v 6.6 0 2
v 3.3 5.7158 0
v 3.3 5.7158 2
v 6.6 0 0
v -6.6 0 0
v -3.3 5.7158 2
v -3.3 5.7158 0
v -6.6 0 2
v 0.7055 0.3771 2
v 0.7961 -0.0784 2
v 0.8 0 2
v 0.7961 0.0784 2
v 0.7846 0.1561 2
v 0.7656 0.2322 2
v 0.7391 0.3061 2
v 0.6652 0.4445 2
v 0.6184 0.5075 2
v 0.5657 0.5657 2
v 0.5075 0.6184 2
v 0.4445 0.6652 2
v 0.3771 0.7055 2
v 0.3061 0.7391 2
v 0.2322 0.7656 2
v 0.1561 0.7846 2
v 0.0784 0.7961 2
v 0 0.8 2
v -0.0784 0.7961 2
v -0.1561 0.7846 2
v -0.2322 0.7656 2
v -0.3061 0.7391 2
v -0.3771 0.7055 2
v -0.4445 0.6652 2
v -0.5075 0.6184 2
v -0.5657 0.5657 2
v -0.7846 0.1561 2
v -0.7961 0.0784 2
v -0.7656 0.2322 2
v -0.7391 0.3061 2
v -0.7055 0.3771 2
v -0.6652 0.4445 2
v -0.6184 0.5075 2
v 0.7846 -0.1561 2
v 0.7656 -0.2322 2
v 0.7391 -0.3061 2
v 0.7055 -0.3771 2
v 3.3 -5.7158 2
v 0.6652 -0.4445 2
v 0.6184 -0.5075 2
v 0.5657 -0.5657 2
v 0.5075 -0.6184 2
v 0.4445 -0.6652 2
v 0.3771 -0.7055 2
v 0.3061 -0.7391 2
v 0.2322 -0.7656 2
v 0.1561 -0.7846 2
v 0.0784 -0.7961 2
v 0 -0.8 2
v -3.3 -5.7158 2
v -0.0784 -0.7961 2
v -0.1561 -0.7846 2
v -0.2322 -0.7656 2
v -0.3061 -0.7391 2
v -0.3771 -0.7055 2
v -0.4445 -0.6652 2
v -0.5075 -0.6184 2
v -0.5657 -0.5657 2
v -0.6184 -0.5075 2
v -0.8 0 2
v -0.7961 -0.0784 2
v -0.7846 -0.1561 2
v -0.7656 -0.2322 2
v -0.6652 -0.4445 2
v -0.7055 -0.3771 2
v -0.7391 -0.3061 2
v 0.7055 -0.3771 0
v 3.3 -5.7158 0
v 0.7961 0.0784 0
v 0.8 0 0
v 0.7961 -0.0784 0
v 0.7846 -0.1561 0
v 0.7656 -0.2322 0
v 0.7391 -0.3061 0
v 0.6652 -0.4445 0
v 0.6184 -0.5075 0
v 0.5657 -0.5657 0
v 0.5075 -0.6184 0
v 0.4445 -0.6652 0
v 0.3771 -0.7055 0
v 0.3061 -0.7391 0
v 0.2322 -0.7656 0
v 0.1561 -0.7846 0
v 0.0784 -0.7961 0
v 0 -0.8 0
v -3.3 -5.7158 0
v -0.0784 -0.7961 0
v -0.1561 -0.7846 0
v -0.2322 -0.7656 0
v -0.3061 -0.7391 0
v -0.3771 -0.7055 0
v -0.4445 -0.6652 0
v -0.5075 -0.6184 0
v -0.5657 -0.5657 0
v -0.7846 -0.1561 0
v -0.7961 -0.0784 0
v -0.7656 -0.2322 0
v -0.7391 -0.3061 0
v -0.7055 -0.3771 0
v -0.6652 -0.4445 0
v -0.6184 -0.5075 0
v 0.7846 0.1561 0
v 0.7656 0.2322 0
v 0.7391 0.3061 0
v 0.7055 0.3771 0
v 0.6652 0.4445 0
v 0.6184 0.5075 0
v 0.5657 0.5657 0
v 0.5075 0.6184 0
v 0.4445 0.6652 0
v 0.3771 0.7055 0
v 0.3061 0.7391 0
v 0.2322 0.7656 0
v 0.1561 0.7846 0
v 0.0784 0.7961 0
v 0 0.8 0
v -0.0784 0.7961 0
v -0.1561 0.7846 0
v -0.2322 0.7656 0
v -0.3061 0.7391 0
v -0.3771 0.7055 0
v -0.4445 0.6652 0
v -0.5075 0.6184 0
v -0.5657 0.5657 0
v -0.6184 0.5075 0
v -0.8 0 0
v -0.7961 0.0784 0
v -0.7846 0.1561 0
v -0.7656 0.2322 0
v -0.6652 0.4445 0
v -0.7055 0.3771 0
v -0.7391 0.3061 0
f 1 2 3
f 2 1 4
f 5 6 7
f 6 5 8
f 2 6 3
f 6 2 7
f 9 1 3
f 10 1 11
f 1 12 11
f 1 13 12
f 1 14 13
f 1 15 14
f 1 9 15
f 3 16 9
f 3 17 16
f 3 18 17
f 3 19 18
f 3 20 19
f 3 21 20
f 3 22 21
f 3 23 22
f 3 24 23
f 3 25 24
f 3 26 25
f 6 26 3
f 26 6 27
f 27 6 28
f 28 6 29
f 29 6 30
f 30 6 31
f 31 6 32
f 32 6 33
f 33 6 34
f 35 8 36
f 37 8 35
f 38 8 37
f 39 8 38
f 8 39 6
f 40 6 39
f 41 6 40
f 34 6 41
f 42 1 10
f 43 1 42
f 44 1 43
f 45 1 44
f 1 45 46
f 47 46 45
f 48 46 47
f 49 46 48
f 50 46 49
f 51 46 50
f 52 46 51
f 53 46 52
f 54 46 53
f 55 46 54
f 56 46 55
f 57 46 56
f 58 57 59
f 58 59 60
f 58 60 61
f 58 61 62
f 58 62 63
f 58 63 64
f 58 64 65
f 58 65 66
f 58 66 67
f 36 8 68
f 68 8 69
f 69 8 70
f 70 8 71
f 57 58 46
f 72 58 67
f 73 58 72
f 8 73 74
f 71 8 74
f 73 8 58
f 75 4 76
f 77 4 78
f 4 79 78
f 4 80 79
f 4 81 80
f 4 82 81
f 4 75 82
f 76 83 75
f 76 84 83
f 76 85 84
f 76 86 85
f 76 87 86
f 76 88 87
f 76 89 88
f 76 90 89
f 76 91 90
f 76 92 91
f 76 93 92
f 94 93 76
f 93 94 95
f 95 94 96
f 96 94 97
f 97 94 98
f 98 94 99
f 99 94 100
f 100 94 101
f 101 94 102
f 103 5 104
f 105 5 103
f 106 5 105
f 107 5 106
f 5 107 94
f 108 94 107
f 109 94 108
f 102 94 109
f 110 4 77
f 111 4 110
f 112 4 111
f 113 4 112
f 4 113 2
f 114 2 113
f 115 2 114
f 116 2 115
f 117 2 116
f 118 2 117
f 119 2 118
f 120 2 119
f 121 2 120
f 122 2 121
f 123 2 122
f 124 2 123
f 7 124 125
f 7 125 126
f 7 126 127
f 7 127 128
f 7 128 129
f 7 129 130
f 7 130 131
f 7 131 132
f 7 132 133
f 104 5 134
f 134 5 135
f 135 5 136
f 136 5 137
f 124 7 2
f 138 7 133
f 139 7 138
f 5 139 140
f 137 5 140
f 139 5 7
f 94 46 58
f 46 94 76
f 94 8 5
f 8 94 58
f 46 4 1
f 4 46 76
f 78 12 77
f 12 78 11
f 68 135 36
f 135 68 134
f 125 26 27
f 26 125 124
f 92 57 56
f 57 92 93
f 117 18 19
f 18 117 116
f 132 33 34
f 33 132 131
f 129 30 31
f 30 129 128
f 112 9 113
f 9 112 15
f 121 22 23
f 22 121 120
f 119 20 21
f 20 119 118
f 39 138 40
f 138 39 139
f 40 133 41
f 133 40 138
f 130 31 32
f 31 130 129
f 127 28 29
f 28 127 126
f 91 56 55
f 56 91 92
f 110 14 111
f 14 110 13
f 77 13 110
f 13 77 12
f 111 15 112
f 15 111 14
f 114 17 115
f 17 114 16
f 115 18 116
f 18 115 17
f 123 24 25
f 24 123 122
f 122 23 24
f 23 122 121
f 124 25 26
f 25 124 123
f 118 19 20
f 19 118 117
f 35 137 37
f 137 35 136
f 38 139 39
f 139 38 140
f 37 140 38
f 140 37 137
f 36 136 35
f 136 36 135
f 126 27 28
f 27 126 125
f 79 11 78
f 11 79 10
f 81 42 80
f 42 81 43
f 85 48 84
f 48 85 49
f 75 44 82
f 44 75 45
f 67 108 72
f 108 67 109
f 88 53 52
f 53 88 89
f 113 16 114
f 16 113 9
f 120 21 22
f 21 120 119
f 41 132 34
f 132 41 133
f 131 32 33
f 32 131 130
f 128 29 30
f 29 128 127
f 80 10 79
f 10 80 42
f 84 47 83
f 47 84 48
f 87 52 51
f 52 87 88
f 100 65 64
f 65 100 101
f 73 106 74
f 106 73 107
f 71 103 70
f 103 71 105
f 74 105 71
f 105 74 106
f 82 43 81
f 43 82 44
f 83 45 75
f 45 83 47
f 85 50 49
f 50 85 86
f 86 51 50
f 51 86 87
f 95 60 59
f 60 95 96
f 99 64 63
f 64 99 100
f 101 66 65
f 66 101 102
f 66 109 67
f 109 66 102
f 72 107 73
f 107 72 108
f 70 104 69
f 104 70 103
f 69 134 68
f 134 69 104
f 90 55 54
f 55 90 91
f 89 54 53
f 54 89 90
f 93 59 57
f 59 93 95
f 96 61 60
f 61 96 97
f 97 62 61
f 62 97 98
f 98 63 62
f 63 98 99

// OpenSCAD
difference() {
cylinder(r=6.6, h=2, $fn=6);
cylinder(r=0.8, h=10, $fn=64);
}
